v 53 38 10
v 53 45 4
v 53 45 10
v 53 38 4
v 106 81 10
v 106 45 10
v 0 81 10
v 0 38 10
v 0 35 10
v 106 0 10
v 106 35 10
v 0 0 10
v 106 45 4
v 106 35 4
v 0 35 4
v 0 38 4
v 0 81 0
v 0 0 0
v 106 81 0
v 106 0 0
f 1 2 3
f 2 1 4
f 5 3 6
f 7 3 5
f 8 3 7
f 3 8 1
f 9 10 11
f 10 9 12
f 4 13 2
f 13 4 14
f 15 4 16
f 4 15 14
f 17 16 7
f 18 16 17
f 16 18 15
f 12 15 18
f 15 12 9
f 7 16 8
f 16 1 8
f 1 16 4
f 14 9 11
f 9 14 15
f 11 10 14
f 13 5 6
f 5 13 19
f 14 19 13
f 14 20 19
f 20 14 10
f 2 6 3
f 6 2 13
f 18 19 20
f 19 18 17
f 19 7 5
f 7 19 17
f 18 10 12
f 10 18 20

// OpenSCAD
module model()
{
    width = 53;
    length = 81;
    height = 10;

    cave_height = 6;
    cave_length = 10;
    cave_offset_length = 35;
    difference() {
        cube([width*2, length, height]);
        union() {
            translate([0, cave_offset_length, height - cave_height])
                cube([width, 3, cave_height]);
            translate([width, cave_offset_length, height - cave_height])
                cube([width, cave_length, cave_height]);
        }
    }
}

model();
